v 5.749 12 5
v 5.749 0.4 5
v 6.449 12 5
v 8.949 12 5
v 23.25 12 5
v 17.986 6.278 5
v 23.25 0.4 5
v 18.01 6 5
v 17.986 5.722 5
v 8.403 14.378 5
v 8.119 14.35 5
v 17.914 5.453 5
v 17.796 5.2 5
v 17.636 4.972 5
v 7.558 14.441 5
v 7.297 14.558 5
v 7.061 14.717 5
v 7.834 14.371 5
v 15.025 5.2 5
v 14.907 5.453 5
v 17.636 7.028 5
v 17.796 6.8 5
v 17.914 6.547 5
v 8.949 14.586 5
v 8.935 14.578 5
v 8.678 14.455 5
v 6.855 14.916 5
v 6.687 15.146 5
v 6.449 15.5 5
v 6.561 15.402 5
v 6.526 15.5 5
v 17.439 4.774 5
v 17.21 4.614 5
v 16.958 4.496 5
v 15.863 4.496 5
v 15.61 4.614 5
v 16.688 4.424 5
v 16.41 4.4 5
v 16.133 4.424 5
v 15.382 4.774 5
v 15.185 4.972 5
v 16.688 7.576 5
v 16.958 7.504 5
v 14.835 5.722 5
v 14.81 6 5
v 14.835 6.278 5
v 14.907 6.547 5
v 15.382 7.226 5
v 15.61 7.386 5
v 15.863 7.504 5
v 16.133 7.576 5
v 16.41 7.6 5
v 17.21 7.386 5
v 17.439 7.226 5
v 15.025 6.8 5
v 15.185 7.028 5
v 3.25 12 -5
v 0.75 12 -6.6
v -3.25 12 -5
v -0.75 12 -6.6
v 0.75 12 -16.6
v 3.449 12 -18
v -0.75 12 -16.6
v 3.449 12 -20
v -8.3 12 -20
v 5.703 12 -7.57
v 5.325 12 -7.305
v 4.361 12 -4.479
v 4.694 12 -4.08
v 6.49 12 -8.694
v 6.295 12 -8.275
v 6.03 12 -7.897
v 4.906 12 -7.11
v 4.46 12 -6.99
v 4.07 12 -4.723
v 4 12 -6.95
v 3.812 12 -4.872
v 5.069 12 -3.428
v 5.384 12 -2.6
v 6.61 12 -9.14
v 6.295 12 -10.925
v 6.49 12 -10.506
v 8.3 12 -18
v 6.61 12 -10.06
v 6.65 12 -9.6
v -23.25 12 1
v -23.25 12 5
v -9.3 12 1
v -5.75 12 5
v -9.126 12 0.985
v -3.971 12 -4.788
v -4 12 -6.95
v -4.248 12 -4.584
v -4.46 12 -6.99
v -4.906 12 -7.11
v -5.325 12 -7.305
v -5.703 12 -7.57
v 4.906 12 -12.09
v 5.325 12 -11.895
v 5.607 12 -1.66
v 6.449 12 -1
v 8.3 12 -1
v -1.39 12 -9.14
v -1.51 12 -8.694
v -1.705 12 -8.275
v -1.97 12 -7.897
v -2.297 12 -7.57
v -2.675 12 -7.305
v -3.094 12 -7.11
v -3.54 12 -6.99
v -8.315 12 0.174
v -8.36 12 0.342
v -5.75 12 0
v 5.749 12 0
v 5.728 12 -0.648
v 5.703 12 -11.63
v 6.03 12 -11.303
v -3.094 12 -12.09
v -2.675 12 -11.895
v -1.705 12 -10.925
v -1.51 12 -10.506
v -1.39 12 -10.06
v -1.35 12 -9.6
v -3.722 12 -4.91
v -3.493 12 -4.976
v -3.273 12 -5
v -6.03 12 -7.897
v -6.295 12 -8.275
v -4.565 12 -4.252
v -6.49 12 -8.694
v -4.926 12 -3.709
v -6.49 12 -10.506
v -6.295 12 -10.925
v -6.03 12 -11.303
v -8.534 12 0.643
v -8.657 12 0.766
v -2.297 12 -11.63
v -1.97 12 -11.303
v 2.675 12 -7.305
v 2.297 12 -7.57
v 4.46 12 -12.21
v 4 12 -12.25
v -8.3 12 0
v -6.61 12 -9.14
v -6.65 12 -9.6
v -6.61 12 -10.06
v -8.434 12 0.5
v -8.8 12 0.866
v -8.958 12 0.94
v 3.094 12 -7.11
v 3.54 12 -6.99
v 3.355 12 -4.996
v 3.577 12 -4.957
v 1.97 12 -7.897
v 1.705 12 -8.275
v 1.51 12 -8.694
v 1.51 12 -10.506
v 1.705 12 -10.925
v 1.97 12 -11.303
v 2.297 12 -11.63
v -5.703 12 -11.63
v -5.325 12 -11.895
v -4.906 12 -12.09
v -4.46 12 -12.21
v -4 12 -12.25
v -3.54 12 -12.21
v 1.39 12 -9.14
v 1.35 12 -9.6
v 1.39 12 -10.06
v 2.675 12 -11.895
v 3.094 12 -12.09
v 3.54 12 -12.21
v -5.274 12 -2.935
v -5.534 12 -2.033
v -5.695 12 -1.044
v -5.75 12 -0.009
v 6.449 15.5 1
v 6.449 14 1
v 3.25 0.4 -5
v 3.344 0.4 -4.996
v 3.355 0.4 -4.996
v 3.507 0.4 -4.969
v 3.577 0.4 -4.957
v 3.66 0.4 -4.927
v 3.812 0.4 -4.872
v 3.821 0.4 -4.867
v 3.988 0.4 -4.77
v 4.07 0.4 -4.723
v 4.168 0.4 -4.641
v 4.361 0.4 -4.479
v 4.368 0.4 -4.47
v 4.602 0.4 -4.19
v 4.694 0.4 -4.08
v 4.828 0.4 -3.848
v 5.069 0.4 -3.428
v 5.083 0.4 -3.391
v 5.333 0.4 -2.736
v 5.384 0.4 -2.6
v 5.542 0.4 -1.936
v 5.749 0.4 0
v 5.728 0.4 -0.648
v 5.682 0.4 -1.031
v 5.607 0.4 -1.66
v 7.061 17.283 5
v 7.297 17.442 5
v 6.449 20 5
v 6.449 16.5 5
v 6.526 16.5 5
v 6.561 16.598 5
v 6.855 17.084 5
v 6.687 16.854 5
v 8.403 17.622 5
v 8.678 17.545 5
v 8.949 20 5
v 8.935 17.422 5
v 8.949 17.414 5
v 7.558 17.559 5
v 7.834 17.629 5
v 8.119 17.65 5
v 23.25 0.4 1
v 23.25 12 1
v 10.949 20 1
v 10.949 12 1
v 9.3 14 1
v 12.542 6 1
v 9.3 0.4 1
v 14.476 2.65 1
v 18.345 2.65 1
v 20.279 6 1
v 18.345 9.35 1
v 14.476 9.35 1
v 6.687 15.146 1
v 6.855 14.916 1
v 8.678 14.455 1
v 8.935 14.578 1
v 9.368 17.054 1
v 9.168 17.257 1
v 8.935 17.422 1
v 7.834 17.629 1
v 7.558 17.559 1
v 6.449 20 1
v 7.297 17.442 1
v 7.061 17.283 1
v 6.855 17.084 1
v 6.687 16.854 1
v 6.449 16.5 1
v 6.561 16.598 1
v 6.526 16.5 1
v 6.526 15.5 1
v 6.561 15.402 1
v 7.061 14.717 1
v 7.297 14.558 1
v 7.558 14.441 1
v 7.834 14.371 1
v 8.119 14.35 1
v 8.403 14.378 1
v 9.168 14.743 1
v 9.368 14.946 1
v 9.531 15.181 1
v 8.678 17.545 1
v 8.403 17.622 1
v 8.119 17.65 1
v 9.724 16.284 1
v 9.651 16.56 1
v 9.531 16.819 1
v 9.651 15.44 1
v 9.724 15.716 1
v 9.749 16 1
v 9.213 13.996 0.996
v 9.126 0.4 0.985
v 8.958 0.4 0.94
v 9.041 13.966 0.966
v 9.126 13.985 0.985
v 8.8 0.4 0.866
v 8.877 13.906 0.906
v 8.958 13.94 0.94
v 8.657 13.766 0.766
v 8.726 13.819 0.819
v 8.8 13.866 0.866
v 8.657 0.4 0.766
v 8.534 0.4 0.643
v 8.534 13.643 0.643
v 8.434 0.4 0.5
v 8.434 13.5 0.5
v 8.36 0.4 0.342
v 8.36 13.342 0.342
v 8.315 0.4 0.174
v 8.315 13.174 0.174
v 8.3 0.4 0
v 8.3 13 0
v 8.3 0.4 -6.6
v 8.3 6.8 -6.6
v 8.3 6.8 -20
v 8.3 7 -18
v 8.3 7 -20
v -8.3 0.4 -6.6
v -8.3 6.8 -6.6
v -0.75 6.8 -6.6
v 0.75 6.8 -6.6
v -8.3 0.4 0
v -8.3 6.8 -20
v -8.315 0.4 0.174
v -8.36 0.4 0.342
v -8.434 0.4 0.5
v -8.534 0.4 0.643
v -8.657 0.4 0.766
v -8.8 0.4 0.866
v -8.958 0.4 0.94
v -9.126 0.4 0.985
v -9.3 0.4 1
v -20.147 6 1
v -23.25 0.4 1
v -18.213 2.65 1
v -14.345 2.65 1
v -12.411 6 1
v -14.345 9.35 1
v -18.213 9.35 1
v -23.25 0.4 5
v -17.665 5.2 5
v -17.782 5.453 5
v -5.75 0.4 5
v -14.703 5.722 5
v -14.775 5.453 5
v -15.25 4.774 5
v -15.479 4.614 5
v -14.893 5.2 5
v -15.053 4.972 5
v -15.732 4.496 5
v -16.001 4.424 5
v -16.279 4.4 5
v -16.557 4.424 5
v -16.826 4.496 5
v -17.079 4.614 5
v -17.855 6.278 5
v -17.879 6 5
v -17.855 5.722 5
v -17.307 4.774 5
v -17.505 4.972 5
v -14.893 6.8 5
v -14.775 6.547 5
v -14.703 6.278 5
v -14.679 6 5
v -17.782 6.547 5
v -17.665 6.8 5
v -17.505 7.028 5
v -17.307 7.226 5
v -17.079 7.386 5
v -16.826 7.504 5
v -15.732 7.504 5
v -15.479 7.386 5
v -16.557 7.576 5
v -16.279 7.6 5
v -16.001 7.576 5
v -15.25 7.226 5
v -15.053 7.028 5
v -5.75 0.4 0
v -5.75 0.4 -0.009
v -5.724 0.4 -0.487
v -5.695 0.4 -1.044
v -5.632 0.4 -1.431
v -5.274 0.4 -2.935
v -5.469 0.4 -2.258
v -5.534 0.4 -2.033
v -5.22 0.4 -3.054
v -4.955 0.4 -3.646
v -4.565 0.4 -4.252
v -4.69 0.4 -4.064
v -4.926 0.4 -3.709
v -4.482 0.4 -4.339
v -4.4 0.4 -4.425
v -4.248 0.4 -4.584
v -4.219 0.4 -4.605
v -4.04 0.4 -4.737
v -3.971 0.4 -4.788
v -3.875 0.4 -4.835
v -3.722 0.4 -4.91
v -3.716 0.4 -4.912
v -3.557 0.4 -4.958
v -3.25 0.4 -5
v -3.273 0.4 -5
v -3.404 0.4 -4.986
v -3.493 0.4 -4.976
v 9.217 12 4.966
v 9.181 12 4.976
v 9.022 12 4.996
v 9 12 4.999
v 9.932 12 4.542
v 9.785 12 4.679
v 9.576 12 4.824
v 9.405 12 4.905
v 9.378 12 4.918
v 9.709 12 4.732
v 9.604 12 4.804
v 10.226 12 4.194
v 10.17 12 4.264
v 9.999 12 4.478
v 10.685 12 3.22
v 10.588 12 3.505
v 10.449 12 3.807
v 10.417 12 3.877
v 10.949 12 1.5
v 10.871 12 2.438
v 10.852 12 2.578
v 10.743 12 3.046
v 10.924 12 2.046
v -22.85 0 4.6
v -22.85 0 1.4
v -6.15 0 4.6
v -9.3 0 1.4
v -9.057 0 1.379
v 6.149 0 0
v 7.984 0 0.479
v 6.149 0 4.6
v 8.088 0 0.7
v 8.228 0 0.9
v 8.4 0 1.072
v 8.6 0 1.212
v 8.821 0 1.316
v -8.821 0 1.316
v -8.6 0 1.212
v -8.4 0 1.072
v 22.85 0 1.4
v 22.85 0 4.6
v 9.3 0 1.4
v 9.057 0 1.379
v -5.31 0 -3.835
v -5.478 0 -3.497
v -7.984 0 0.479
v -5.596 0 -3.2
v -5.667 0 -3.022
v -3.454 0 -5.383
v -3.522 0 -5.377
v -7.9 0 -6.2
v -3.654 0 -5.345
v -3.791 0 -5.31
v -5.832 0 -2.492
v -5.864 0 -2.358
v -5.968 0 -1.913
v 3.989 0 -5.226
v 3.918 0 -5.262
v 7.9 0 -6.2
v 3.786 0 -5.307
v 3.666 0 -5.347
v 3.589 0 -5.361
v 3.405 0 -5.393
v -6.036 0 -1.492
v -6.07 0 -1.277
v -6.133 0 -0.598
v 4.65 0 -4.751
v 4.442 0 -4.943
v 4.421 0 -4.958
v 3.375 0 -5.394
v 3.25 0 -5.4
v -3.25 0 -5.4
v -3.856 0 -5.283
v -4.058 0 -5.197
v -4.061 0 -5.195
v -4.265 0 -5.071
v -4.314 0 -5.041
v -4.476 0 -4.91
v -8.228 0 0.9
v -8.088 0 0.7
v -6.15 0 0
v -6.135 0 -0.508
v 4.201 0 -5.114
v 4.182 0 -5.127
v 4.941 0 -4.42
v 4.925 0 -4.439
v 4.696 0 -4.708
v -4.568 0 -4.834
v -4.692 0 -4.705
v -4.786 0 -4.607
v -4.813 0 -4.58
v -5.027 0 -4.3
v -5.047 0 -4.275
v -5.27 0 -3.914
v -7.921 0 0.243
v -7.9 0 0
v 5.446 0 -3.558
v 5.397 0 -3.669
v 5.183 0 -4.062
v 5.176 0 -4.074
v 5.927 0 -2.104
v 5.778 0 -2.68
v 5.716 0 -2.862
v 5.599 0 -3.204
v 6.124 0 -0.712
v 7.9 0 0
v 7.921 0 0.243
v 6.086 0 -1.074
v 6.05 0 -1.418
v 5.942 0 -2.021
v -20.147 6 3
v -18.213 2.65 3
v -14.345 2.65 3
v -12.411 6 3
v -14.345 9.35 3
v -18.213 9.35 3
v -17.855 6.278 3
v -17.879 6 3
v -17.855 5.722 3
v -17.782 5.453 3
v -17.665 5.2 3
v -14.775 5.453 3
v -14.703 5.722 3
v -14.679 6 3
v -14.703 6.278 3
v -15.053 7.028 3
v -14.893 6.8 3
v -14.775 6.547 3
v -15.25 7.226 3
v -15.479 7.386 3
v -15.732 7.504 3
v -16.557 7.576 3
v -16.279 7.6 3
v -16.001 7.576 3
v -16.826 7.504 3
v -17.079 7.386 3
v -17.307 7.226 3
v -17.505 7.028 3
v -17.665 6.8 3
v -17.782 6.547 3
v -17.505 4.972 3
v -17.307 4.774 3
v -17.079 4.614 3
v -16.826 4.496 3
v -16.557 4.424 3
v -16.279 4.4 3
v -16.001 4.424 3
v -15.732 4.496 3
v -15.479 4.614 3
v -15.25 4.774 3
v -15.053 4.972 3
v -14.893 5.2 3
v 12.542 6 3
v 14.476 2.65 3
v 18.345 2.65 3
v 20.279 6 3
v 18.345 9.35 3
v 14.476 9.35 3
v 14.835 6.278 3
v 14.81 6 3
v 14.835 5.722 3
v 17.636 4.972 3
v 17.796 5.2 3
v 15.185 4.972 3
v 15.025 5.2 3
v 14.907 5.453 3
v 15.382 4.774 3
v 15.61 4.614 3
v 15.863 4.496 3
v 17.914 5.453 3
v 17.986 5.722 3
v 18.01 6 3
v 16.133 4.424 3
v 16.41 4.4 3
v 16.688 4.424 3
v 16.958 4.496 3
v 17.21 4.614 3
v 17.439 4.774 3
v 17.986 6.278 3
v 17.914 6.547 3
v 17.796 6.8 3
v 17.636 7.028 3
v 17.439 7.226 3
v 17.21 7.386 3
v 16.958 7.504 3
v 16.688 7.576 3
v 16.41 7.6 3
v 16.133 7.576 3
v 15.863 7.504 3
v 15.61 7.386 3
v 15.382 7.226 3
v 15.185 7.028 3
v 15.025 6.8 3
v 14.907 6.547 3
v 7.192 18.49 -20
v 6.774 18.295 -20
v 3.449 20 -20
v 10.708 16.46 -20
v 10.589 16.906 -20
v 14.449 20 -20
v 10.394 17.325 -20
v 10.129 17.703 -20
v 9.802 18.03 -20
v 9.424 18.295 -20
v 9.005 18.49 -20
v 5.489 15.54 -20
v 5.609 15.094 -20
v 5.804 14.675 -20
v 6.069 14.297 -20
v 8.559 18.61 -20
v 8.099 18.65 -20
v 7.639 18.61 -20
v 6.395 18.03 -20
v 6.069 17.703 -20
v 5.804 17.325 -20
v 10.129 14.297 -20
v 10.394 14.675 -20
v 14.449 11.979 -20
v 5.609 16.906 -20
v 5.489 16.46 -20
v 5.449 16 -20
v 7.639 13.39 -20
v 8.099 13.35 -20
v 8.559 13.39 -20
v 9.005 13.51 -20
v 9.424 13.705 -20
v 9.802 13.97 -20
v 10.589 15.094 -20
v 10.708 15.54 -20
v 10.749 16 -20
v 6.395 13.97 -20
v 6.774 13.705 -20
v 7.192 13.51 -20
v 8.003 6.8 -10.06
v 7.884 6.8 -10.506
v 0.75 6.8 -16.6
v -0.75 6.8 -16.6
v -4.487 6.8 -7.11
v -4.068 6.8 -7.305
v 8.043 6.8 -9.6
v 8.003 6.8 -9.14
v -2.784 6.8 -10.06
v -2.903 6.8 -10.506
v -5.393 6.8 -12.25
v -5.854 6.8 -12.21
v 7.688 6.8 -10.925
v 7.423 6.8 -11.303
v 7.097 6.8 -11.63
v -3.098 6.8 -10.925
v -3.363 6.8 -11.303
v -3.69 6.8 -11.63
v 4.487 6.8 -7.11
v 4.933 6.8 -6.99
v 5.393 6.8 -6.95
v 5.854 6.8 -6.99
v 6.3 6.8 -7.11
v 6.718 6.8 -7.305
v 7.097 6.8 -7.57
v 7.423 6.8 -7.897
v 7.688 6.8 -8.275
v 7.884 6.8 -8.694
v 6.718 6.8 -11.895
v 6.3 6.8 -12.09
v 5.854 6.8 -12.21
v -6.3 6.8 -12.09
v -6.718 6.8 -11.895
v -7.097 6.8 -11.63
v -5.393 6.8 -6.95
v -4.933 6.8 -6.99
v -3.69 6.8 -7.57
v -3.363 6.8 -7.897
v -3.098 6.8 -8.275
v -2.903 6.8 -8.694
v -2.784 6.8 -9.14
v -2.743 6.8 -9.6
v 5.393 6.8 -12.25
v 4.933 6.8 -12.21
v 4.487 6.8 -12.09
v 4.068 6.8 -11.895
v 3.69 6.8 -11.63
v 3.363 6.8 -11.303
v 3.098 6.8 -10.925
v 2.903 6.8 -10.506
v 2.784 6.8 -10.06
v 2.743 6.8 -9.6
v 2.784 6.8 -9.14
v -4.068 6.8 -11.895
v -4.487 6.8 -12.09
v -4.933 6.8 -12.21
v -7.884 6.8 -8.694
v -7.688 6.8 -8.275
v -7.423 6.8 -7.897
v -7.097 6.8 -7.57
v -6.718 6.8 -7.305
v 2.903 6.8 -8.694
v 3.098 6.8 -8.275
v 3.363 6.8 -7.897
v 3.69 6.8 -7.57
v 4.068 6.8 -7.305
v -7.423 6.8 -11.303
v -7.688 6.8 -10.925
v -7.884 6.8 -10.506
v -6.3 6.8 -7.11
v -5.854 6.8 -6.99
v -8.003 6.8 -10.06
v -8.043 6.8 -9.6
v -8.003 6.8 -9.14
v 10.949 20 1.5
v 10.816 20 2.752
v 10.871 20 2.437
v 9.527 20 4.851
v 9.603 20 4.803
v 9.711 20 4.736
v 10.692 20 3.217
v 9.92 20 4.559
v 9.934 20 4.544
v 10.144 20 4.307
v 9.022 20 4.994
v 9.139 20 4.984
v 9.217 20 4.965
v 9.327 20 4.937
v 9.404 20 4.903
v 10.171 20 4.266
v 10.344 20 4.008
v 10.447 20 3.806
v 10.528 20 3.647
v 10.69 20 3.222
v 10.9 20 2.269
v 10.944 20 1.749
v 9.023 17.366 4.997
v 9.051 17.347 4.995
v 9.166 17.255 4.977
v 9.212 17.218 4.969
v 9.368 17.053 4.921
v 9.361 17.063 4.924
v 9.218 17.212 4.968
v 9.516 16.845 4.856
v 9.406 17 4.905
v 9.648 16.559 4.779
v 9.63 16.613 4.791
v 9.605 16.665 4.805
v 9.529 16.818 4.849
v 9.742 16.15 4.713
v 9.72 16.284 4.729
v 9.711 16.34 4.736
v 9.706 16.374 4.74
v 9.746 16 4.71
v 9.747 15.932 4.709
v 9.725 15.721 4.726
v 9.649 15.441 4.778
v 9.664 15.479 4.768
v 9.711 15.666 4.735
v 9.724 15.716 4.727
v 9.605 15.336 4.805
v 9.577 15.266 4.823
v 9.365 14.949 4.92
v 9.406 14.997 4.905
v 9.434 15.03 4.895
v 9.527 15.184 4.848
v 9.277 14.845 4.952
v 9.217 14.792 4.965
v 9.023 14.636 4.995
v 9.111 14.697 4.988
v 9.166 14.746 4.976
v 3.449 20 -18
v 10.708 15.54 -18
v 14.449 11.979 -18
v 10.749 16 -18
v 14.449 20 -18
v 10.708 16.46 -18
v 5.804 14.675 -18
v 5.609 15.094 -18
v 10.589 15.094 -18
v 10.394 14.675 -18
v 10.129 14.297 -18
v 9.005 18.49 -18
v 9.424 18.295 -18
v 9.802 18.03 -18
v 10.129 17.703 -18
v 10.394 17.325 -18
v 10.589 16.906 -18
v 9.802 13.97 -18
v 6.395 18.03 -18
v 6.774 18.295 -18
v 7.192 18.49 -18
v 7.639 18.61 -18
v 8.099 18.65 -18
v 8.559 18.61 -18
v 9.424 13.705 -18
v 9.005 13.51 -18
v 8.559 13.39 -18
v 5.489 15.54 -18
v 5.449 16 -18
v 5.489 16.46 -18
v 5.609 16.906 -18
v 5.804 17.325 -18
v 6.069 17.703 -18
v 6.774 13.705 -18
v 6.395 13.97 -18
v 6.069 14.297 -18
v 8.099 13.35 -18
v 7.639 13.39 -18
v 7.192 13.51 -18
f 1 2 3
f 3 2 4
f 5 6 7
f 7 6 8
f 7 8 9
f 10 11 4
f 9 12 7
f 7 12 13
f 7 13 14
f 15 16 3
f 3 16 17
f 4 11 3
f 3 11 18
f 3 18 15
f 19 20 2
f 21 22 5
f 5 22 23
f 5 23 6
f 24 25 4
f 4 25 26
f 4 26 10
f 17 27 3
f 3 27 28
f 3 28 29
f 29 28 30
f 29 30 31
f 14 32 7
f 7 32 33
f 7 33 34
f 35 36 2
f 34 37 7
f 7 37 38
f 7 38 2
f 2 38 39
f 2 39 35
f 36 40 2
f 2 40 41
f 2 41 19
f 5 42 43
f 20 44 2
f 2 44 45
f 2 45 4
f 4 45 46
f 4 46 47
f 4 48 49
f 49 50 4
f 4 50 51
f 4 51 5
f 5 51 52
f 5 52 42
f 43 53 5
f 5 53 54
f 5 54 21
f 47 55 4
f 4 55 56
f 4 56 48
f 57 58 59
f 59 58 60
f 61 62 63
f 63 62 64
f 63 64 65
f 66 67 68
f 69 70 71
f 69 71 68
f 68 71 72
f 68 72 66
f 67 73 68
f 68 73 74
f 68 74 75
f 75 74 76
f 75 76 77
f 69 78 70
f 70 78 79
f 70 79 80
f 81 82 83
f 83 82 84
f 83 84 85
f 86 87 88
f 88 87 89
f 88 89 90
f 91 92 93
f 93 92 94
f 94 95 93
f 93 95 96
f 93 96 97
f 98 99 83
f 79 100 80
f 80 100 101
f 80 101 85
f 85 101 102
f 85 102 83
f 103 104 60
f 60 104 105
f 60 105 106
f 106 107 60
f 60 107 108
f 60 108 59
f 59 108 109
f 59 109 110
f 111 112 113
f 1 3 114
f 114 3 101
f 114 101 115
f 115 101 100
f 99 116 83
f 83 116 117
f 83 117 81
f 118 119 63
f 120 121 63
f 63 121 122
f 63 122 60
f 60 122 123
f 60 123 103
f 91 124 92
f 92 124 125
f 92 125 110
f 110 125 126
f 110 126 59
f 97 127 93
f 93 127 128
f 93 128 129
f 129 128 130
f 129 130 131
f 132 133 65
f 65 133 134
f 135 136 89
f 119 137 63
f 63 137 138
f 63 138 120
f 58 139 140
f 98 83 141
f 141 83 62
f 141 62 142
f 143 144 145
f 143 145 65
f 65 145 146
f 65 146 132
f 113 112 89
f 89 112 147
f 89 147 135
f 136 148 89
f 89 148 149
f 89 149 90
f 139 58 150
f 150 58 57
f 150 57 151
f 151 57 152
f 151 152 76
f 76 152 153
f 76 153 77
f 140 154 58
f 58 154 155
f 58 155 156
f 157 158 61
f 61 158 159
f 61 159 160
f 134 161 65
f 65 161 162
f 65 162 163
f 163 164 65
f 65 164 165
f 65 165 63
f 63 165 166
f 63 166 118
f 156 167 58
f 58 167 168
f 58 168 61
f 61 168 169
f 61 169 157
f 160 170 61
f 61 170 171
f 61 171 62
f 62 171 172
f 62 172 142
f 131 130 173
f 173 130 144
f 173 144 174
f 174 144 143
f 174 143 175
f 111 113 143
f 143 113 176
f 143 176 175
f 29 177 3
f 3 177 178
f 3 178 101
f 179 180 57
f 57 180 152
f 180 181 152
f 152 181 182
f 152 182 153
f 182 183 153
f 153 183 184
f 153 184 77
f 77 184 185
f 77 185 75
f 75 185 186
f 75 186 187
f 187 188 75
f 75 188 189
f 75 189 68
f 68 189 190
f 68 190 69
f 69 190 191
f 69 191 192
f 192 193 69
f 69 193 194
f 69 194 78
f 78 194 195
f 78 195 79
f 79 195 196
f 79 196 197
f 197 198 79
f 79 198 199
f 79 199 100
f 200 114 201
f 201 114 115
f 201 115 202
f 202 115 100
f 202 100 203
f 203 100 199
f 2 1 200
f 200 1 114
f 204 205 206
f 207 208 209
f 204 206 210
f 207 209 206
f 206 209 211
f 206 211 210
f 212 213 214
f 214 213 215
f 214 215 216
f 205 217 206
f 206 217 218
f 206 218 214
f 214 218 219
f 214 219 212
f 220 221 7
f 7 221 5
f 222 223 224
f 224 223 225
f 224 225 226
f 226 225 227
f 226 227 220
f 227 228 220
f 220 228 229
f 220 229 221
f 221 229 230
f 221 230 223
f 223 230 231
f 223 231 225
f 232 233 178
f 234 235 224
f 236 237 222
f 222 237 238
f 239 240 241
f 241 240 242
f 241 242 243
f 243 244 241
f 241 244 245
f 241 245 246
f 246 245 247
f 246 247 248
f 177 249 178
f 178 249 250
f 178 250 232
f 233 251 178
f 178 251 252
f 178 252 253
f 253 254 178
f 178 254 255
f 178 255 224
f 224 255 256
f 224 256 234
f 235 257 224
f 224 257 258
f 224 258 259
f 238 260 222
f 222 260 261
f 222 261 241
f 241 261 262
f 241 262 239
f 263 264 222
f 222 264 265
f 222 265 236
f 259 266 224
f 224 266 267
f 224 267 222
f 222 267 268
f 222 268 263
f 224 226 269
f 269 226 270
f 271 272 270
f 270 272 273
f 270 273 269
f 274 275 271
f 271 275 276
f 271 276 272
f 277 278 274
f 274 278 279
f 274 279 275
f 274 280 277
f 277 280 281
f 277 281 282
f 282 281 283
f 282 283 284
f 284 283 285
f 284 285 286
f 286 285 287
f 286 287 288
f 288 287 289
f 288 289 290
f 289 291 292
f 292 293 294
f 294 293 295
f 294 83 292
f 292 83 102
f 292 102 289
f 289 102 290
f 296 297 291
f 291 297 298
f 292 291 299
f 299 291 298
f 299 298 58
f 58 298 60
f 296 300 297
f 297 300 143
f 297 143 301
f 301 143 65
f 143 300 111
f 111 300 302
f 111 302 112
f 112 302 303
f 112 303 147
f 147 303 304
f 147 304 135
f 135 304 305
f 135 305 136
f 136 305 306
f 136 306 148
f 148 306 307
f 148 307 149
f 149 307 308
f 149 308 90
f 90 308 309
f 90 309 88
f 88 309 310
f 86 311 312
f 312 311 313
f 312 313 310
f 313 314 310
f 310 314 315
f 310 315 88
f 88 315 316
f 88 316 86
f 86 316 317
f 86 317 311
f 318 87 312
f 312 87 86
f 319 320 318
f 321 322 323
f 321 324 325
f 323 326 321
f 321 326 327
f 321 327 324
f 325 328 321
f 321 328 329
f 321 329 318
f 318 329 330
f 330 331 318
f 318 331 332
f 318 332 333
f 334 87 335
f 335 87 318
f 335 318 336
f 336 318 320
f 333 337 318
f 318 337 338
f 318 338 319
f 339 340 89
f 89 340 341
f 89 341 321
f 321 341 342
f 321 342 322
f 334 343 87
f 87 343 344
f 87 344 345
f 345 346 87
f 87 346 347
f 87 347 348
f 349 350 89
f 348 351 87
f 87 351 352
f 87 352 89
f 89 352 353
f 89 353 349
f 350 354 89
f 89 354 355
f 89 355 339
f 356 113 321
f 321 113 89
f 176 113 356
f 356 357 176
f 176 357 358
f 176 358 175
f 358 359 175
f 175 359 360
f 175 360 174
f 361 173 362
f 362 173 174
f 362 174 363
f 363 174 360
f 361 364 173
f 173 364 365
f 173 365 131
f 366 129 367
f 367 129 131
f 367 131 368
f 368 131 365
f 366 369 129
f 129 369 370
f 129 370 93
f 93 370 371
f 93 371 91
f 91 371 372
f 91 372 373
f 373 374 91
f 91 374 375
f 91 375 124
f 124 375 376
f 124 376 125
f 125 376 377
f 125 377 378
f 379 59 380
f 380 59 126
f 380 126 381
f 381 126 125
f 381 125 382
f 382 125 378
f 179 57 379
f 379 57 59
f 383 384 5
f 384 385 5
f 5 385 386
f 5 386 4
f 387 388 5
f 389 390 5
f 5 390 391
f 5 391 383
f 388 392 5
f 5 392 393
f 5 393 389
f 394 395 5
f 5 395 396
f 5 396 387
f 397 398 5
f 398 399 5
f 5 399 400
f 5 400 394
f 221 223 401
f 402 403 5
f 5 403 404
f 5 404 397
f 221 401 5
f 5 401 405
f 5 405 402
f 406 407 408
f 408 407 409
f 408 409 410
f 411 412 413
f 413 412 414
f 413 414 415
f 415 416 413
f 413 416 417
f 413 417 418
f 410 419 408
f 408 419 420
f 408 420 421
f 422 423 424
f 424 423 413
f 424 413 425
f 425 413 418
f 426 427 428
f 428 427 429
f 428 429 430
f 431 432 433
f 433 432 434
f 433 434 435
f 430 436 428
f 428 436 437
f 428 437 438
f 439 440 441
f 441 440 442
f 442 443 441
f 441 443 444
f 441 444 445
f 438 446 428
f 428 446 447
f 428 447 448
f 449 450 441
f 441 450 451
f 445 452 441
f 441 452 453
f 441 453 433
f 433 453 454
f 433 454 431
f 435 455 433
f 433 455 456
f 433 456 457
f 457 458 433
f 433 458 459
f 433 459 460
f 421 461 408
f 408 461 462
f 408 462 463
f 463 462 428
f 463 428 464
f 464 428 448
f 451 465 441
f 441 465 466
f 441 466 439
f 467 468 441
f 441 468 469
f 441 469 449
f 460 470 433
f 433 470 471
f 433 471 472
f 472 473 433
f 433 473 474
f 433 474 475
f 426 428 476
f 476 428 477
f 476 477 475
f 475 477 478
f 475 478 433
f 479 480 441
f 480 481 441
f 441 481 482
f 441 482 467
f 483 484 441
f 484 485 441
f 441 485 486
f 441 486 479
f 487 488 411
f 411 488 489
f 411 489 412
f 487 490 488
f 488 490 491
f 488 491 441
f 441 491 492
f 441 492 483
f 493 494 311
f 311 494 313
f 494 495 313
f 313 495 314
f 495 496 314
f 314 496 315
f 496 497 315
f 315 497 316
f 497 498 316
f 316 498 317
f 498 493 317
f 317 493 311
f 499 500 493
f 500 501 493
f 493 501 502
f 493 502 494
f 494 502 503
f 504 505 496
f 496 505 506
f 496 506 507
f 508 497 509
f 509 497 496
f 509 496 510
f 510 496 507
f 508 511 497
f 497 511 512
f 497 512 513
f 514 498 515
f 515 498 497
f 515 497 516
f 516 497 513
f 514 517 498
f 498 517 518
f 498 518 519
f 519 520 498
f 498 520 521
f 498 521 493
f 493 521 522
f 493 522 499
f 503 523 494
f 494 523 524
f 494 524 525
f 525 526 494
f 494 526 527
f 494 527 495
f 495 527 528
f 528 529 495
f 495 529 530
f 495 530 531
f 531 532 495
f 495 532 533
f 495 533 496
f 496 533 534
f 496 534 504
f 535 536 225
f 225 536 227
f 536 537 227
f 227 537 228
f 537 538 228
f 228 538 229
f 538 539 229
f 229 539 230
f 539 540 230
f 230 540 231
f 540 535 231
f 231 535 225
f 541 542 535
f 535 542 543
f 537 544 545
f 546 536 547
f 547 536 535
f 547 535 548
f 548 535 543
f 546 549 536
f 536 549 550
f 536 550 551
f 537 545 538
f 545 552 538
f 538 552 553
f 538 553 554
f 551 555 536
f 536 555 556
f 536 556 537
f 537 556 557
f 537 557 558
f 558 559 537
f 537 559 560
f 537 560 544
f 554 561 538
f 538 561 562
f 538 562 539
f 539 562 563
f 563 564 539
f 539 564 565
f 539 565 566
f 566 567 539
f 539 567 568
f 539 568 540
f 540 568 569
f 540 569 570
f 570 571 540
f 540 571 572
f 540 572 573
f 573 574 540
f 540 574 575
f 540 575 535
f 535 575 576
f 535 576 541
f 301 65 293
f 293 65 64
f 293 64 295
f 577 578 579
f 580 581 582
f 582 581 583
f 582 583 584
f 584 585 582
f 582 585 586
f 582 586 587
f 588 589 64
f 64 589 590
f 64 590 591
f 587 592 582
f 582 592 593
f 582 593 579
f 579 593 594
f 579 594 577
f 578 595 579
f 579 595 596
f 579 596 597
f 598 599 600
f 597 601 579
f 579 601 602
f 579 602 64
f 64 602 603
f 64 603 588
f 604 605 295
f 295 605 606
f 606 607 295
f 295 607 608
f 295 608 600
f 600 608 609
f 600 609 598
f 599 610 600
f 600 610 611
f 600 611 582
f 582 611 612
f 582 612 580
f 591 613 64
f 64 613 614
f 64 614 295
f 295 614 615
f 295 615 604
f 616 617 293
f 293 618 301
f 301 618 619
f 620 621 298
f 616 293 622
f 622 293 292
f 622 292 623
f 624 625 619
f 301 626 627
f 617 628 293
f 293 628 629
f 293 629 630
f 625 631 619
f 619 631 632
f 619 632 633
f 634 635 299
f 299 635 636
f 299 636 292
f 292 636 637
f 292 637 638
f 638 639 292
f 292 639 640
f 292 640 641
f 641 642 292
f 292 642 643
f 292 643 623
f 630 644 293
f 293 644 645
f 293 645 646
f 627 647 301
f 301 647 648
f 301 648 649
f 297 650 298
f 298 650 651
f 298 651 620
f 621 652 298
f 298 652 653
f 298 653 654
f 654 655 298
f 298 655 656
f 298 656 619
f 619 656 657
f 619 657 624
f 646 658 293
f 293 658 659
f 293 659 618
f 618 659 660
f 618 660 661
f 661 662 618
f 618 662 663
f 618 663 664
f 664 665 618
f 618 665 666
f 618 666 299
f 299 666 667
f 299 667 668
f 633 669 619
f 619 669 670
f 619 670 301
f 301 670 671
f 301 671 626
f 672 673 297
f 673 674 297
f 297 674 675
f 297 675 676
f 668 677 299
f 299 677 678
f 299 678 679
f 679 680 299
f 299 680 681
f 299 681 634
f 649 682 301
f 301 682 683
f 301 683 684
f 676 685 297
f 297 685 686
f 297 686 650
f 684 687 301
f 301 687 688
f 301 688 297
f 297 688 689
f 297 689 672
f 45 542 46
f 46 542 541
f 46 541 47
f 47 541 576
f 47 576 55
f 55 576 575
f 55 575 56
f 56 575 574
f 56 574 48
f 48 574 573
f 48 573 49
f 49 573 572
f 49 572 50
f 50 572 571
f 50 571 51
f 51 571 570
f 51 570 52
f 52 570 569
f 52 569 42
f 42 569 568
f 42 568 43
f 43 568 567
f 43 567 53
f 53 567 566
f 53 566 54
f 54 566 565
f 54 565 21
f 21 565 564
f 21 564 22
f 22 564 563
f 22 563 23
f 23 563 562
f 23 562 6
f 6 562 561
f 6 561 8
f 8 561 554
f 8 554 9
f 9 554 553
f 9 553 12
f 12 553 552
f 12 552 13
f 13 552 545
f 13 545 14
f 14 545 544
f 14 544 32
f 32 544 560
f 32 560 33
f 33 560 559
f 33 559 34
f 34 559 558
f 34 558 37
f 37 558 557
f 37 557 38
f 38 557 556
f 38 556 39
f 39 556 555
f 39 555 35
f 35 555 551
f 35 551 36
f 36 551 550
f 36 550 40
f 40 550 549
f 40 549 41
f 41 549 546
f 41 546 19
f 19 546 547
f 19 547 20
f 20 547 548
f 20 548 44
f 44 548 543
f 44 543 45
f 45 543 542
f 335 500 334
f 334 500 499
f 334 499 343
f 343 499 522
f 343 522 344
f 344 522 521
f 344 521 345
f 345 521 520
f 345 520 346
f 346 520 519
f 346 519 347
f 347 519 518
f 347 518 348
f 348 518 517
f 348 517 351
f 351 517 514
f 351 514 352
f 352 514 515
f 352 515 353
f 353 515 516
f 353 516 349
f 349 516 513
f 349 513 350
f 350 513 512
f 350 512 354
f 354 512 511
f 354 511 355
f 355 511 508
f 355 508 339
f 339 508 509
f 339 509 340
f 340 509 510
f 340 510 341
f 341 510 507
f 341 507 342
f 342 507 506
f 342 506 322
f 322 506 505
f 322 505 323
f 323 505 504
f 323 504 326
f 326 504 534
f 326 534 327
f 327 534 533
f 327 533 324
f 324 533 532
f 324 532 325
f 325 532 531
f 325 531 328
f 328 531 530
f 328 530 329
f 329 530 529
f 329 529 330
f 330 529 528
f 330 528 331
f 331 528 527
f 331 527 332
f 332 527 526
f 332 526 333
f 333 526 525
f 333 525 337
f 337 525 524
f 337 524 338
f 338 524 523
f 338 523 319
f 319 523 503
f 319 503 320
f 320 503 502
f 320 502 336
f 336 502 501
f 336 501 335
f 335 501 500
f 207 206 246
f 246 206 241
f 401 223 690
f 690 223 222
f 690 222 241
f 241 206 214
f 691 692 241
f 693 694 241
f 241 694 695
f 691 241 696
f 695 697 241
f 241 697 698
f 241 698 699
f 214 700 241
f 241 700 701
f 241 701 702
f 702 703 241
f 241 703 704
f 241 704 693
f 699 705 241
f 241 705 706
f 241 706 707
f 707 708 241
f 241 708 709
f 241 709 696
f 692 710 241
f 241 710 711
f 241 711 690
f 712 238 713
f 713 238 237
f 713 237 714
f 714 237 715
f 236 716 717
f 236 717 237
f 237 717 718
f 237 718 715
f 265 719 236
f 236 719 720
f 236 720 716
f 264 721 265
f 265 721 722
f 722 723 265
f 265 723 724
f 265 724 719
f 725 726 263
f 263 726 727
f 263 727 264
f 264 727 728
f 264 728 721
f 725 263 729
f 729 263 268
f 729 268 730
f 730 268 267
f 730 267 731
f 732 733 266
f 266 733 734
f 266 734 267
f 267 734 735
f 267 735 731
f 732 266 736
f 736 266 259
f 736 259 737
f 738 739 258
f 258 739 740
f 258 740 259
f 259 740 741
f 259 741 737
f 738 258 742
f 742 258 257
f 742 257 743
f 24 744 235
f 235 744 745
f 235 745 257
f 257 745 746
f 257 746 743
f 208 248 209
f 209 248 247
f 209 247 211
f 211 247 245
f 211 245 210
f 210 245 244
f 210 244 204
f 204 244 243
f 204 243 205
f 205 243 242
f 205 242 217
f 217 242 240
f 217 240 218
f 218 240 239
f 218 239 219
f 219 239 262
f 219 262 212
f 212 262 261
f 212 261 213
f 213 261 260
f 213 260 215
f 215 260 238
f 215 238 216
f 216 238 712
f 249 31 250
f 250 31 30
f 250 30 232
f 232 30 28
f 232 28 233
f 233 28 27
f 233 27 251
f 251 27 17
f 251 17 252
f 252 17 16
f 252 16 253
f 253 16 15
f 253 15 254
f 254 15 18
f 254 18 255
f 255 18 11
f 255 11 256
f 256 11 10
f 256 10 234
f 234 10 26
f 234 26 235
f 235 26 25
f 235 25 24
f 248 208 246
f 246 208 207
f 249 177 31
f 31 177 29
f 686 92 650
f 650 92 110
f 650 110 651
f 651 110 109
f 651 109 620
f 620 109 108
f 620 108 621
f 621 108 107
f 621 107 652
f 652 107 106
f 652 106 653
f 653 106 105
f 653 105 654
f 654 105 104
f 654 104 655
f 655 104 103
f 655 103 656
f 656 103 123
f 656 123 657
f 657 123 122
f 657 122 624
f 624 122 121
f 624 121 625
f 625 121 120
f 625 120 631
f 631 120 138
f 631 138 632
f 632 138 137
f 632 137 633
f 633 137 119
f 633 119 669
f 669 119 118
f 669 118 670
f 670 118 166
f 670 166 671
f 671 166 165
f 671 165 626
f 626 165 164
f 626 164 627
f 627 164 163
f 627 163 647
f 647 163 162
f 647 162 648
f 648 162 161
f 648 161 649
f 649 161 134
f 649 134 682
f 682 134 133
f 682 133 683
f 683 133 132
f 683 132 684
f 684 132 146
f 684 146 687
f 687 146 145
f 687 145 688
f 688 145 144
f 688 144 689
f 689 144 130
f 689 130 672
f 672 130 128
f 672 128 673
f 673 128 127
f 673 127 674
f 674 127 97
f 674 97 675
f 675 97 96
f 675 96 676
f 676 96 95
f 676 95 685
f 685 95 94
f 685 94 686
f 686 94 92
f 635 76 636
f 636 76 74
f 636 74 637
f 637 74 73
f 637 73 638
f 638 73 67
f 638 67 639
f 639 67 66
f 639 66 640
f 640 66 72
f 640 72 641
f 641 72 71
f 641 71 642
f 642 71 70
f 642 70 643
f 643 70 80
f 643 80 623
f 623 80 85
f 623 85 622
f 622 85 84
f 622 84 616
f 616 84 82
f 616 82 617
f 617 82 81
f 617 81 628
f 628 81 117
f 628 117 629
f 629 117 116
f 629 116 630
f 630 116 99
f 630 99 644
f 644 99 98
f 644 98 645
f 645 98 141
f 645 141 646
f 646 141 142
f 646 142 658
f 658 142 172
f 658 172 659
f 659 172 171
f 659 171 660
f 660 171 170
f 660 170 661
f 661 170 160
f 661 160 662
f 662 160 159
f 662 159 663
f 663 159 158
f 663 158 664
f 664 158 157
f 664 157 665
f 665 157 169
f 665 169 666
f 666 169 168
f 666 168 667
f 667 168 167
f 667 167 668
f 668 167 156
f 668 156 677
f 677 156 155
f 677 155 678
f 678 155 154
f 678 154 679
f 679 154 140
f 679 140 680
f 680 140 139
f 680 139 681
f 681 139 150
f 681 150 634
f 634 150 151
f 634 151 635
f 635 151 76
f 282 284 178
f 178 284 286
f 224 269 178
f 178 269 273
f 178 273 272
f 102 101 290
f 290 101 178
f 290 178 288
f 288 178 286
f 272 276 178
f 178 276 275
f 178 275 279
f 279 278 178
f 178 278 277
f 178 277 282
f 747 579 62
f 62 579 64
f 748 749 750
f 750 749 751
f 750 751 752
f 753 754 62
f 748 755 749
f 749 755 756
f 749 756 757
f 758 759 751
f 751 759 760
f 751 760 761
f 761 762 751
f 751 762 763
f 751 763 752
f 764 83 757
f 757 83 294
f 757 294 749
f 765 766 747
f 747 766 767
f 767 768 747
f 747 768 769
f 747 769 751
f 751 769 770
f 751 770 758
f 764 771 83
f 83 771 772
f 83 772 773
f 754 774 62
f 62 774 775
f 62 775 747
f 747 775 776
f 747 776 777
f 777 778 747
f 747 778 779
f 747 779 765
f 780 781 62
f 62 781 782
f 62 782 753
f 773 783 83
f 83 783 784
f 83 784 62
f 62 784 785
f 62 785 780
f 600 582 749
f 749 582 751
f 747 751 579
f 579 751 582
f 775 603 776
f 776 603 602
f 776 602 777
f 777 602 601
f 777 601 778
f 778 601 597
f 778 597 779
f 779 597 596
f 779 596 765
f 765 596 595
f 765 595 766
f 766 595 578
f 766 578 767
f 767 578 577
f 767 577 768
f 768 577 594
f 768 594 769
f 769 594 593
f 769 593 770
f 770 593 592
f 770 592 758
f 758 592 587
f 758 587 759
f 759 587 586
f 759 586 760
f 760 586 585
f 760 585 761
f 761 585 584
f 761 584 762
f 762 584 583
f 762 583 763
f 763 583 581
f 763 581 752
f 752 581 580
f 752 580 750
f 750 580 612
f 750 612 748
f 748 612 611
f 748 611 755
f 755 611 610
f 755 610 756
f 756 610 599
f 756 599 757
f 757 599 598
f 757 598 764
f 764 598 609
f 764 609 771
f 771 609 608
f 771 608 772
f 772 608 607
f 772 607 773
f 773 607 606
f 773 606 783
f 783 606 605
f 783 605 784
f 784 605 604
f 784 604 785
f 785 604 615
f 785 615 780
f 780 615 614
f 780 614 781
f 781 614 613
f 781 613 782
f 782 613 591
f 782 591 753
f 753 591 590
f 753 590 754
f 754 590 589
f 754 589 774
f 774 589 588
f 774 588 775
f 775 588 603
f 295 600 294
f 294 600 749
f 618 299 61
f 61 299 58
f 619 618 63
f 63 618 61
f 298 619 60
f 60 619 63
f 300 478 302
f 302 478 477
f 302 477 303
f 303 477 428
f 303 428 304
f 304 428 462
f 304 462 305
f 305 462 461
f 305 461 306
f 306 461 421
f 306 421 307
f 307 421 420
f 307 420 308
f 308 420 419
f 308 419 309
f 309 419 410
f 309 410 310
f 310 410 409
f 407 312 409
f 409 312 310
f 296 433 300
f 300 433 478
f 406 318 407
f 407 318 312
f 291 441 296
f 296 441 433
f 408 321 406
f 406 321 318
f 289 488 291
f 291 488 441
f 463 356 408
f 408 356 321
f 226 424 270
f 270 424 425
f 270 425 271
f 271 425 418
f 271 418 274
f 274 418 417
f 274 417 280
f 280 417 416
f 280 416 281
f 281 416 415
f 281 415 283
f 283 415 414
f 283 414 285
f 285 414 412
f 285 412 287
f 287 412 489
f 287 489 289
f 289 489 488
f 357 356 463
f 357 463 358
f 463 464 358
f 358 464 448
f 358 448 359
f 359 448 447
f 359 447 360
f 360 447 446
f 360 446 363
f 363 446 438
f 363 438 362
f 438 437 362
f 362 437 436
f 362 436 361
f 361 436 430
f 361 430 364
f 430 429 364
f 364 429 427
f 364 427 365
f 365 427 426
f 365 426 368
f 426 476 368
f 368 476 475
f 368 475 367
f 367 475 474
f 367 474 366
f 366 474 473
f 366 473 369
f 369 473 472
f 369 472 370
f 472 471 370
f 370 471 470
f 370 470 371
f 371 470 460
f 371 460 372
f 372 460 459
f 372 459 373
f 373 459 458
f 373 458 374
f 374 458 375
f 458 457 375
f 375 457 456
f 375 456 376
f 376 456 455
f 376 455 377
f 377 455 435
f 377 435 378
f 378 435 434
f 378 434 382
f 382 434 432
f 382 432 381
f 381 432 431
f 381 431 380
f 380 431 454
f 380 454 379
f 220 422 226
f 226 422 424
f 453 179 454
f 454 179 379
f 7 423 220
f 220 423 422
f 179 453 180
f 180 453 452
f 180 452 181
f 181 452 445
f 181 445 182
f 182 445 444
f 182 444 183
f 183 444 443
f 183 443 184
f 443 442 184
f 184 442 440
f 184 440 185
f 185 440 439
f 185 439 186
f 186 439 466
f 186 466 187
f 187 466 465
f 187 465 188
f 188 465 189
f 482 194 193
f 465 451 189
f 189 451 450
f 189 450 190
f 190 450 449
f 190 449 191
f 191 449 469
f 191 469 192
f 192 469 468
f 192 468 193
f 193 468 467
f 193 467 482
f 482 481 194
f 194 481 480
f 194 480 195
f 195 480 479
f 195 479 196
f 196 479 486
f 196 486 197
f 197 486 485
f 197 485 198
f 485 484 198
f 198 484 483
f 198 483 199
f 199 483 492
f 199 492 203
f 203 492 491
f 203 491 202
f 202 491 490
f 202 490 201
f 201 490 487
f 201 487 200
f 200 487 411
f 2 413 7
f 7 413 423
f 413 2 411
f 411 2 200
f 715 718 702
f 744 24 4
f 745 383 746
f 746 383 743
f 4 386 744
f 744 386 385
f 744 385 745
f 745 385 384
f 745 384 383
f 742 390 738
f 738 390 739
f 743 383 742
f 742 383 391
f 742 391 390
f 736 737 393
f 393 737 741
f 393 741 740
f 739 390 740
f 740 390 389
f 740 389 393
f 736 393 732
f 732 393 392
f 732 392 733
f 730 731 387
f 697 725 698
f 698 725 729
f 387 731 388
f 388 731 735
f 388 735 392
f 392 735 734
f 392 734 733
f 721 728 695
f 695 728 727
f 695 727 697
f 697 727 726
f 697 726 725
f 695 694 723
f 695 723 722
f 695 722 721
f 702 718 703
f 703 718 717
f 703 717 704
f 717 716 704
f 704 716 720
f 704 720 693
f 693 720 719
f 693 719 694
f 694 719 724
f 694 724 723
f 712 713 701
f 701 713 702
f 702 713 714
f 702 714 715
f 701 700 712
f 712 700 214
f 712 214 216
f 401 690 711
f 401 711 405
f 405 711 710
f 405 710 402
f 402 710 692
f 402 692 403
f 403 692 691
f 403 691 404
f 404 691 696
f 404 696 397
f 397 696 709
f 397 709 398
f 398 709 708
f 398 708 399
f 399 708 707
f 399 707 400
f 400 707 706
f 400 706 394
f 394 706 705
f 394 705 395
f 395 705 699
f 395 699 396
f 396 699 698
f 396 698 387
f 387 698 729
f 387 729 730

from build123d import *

# Parameters (mm, degrees)
BOSS_EXTRUDE1_DEPTH = 12
CUT_EXTRUDE1_DEPTH  = 2
SKETCH3_W           = 16.6
SKETCH3_H           = 13.4
BOSS_EXTRUDE2_DEPTH = 5.2
SKETCH5_R           = 1.6
CUT_EXTRUDE2_DEPTH  = 5
SKETCH6_W           = 4.5
SKETCH6_H           = 4
BOSS_EXTRUDE4_DEPTH = 8
CUT_EXTRUDE4_DEPTH  = 7
SKETCH8_R           = 2.65
CUT_EXTRUDE5_DEPTH  = 7
SKETCH10_R          = 2.65
CUT_EXTRUDE6_DEPTH  = 7
CHAMFER2_SIZE       = 2
SKETCH12_W          = 3
SKETCH12_H          = 2
SKETCH12_W_2        = 6.148694825
SKETCH12_W_3        = 1.851305175
BOSS_EXTRUDE5_DEPTH = 8
SKETCH13_R          = 2.65
CUT_EXTRUDE7_DEPTH  = 3
CHAMFER4_SIZE       = 5
CHAMFER4_SIZE_2     = 6.174485783
SKETCH16_W          = 1.5
SKETCH16_H          = 10
CUT_EXTRUDE8_DEPTH  = 11
CHAMFER5_SIZE       = 0.4
FILLET1_SIZE        = 2
FILLET1_SIZE_2      = 3.5


with BuildPart() as part:
    # Sketch1 → Boss-Extrude1 (new body)
    with BuildSketch(Plane(origin=(0, 0, 0), x_dir=(1, 0, 0), z_dir=(0, 1, 0))):
        with BuildLine():
            Line((-23.25, -5), (-5.749755012, -5))
            Line((-5.749755012, -5), (-5.749755012, 0))
            add(Edge.make_bspline(
                [(-3.25, 5), (-5.749755012, 5), (-5.749755012, 0)],
                knots=[0, 0, 0, 1.570796327, 1.570796327, 1.570796327], degree=2, weights=[1, 0.707106781, 1]))
            Line((-3.25, 5), (3.25, 5))
            add(Edge.make_bspline(
                [(5.748694825, 0), (5.748694825, 5), (3.25, 5)],
                knots=[4.71238898, 4.71238898, 4.71238898, 6.283185307, 6.283185307, 6.283185307], degree=2, weights=[1, 0.707106781, 1]))
            Line((5.748694825, 0), (5.748694825, -5))
            Line((5.748694825, -5), (23.25, -5))
            Line((23.25, -5), (23.25, -3))
            Line((23.25, -3), (23.25, -1))
            Line((23.25, -1), (9.3, -1))
            ThreePointArc((9.3, -1), (8.592893219, -0.707106781), (8.3, 0))
            Line((8.3, 0), (8.3, 6.6))
            Line((8.3, 6.6), (-8.3, 6.6))
            Line((-8.3, 6.6), (-8.3, 0))
            ThreePointArc((-8.3, 0), (-8.592893219, -0.707106781), (-9.3, -1))
            Line((-9.3, -1), (-23.25, -1))
            Line((-23.25, -1), (-23.25, -5))
        make_face()
    extrude(amount=BOSS_EXTRUDE1_DEPTH)

    # Sketch2 → Cut-Extrude1 (cut)
    with BuildSketch(Plane(origin=(0, 0, 1), x_dir=(-1, 0, 0), z_dir=(0, 0, -1))):
        Polygon((20.147177825, 6), (18.213054423, 9.35), (14.344807619, 9.35), (12.410684218, 6), (14.344807619, 2.65), (18.213054423, 2.65), align=None)
        Polygon((-12.542169585, 6), (-14.476292987, 9.35), (-18.34453979, 9.35), (-20.278663192, 6), (-18.34453979, 2.65), (-14.476292987, 2.65), align=None)
    extrude(amount=-CUT_EXTRUDE1_DEPTH, mode=Mode.SUBTRACT)

    # Sketch3 → Boss-Extrude2 (add)
    with BuildSketch(Plane(origin=(0, 12, 0), x_dir=(1, 0, 0), z_dir=(0, 1, 0))):
        with Locations((0, 13.3)):
            Rectangle(SKETCH3_W, SKETCH3_H)
    extrude(amount=-BOSS_EXTRUDE2_DEPTH)

    # Sketch5 → Cut-Extrude2 (cut)
    with BuildSketch(Plane(origin=(0, 0, 1), x_dir=(-1, 0, 0), z_dir=(0, 0, -1))):
        with Locations((-16.410416388, 6)):
            Circle(SKETCH5_R)
        with Locations((16.278931021, 6)):
            Circle(SKETCH5_R)
    extrude(amount=-CUT_EXTRUDE2_DEPTH, mode=Mode.SUBTRACT)

    # Sketch6 → Boss-Extrude4 (add)
    with BuildSketch(Plane(origin=(0, 12, 0), x_dir=(1, 0, 0), z_dir=(0, 1, 0))):
        with Locations((8.698694825, -3)):
            Rectangle(SKETCH6_W, SKETCH6_H)
    extrude(amount=BOSS_EXTRUDE4_DEPTH)

    # Sketch7 → Cut-Extrude4 (cut)
    with BuildSketch(Plane(origin=(0, 0, 1), x_dir=(-1, 0, 0), z_dir=(0, 0, -1))):
        with BuildLine():
            ThreePointArc((-6.448694825, 16), (-6.468205549, 16.252991544), (-6.526276305, 16.5))
            Line((-6.526276305, 16.5), (-7.999397269, 16.5))
            Line((-7.999397269, 16.5), (-7.999397269, 15.5))
            Line((-7.999397269, 15.5), (-6.526276305, 15.5))
            ThreePointArc((-6.526276305, 15.5), (-6.468205549, 15.747008456), (-6.448694825, 16))
        make_face()
        with BuildLine():
            Line((-7.999397269, 16.5), (-6.526276305, 16.5))
            ThreePointArc((-6.526276305, 16.5), (-9.748694825, 16), (-6.526276305, 15.5))
            Line((-6.526276305, 15.5), (-7.999397269, 15.5))
            Line((-7.999397269, 15.5), (-7.999397269, 16.5))
        make_face()
        with BuildLine():
            Line((-6.448694825, 15.5), (-6.448694825, 16))
            ThreePointArc((-6.448694825, 16), (-6.468205549, 15.747008456), (-6.526276305, 15.5))
            Line((-6.526276305, 15.5), (-6.448694825, 15.5))
        make_face()
        with BuildLine():
            Line((-6.448694825, 16), (-6.448694825, 16.5))
            Line((-6.448694825, 16.5), (-6.526276305, 16.5))
            ThreePointArc((-6.526276305, 16.5), (-6.468205549, 16.252991544), (-6.448694825, 16))
        make_face()
    extrude(amount=-CUT_EXTRUDE4_DEPTH, mode=Mode.SUBTRACT)

    # Sketch8 → Cut-Extrude5 (cut, along a direction that is not the sketch's normal)
    with BuildSketch(Plane(origin=(0, 12, 0), x_dir=(1, 0, 0), z_dir=(0, 1, 0))):
        with Locations((-4, 9.6)):
            Circle(SKETCH8_R)
    extrude(amount=-CUT_EXTRUDE5_DEPTH, dir=(0.2588190451025147, 0.96592582628907, -1.457918124587514e-13), mode=Mode.SUBTRACT)

    # Sketch10 → Cut-Extrude6 (cut, along a direction that is not the sketch's normal)
    with BuildSketch(Plane(origin=(0, 12, 0), x_dir=(1, 0, 0), z_dir=(0, 1, 0))):
        with Locations((4, 9.6)):
            Circle(SKETCH10_R)
    extrude(amount=-CUT_EXTRUDE6_DEPTH, dir=(-0.25881904510251447, 0.96592582628907, 0), mode=Mode.SUBTRACT)

    # Chamfer2
    chamfer2_edges = [part.edges().sort_by_distance(p)[0] for p in [
        (7.874347412, 12, 1),
    ]]
    chamfer(chamfer2_edges, length=CHAMFER2_SIZE)

    # Sketch12 → Boss-Extrude5 (add)
    with BuildSketch(Plane(origin=(0, 12, 0), x_dir=(1, 0, 0), z_dir=(0, 1, 0))):
        with Locations((4.948694825, 19)):
            Rectangle(SKETCH12_W, SKETCH12_H)
        with Locations((11.374347413, 19)):
            Rectangle(SKETCH12_W_2, SKETCH12_H)
        with Locations((7.374347413, 19)):
            Rectangle(SKETCH12_W_3, SKETCH12_H)
    extrude(amount=BOSS_EXTRUDE5_DEPTH)

    # Sketch13 → Cut-Extrude7 (cut)
    with BuildSketch(Plane(origin=(0, 0, -20), x_dir=(-1, 0, 0), z_dir=(0, 0, -1))):
        with Locations((-8.098694825, 16)):
            Circle(SKETCH13_R)
    extrude(amount=-CUT_EXTRUDE7_DEPTH, mode=Mode.SUBTRACT)

    # Chamfer4
    # the kernel refuses this chamfer: 6.174485783, 5 mm, written as the material it adds along each edge
    with BuildSketch(Plane(origin=(8.3, 12, -18), x_dir=(-0.037204697112204525, -0.9993076655929289, 0), z_dir=(0, 0, -1))) as chamfer4_piece_1_section:
        Polygon((CHAMFER4_SIZE * 0.999307665593, -CHAMFER4_SIZE * 0.0372046971122), (-CHAMFER4_SIZE_2 * 0.0372046971102, -CHAMFER4_SIZE_2 * 0.99930766554), (0, 0), align=None)
    chamfer4_piece_1 = extrude(amount=2, mode=Mode.PRIVATE)
    chamfer4_piece_1 = split(chamfer4_piece_1, bisect_by=Plane(origin=(14.448694825, 10.333304375, -19), z_dir=(-1, 0, 0)), keep=Keep.TOP, mode=Mode.PRIVATE)
    add(chamfer4_piece_1)

    # Sketch16 → Cut-Extrude8 (cut)
    with BuildSketch(Plane.XZ.offset(-6.8)):
        with Locations((0, -11.6)):
            Rectangle(SKETCH16_W, SKETCH16_H)
    extrude(amount=-CUT_EXTRUDE8_DEPTH, mode=Mode.SUBTRACT)

    # Chamfer5
    chamfer5_edges = [part.edges().sort_by_distance(p)[0] for p in [
        (0, 0, -5),
        (-5.260112096, 0, -2.972310439),
        (-5.749755012, 0, 2.5),
        (-14.499877506, 0, 5),
        (-23.25, 0, 3),
        (-16.275, 0, 1),
        (-8.592893219, 0, 0.707106781),
        (-8.3, 0, -3.3),
        (0, 0, -6.6),
        (8.3, 0, -3.3),
        (8.592893219, 0, 0.707106781),
        (16.275, 0, 1),
        (23.25, 0, 3),
        (14.499347412, 0, 5),
        (5.748694825, 0, 2.5),
        (5.259369228, 0, -2.972013605),
    ]]
    chamfer(chamfer5_edges, length=CHAMFER5_SIZE)

    # Fillet1
    # an asymmetric fillet: 3.5, 2 mm, written as the material it takes off along each edge
    with BuildSketch(Plane(origin=(10.948694825, 12, 5), x_dir=(-1, 0, 0), z_dir=(0, 1, 0))) as fillet1_piece_1:
        with BuildLine():
            Bezier((FILLET1_SIZE, 0), (0, 0), (0, -FILLET1_SIZE_2), weights=[1, 0.707106781, 1])
            Line((0, -FILLET1_SIZE_2), (0, 0))
            Line((0, 0), (FILLET1_SIZE, 0))
        make_face()
    extrude(amount=16.75, mode=Mode.SUBTRACT)


solid = part.part
